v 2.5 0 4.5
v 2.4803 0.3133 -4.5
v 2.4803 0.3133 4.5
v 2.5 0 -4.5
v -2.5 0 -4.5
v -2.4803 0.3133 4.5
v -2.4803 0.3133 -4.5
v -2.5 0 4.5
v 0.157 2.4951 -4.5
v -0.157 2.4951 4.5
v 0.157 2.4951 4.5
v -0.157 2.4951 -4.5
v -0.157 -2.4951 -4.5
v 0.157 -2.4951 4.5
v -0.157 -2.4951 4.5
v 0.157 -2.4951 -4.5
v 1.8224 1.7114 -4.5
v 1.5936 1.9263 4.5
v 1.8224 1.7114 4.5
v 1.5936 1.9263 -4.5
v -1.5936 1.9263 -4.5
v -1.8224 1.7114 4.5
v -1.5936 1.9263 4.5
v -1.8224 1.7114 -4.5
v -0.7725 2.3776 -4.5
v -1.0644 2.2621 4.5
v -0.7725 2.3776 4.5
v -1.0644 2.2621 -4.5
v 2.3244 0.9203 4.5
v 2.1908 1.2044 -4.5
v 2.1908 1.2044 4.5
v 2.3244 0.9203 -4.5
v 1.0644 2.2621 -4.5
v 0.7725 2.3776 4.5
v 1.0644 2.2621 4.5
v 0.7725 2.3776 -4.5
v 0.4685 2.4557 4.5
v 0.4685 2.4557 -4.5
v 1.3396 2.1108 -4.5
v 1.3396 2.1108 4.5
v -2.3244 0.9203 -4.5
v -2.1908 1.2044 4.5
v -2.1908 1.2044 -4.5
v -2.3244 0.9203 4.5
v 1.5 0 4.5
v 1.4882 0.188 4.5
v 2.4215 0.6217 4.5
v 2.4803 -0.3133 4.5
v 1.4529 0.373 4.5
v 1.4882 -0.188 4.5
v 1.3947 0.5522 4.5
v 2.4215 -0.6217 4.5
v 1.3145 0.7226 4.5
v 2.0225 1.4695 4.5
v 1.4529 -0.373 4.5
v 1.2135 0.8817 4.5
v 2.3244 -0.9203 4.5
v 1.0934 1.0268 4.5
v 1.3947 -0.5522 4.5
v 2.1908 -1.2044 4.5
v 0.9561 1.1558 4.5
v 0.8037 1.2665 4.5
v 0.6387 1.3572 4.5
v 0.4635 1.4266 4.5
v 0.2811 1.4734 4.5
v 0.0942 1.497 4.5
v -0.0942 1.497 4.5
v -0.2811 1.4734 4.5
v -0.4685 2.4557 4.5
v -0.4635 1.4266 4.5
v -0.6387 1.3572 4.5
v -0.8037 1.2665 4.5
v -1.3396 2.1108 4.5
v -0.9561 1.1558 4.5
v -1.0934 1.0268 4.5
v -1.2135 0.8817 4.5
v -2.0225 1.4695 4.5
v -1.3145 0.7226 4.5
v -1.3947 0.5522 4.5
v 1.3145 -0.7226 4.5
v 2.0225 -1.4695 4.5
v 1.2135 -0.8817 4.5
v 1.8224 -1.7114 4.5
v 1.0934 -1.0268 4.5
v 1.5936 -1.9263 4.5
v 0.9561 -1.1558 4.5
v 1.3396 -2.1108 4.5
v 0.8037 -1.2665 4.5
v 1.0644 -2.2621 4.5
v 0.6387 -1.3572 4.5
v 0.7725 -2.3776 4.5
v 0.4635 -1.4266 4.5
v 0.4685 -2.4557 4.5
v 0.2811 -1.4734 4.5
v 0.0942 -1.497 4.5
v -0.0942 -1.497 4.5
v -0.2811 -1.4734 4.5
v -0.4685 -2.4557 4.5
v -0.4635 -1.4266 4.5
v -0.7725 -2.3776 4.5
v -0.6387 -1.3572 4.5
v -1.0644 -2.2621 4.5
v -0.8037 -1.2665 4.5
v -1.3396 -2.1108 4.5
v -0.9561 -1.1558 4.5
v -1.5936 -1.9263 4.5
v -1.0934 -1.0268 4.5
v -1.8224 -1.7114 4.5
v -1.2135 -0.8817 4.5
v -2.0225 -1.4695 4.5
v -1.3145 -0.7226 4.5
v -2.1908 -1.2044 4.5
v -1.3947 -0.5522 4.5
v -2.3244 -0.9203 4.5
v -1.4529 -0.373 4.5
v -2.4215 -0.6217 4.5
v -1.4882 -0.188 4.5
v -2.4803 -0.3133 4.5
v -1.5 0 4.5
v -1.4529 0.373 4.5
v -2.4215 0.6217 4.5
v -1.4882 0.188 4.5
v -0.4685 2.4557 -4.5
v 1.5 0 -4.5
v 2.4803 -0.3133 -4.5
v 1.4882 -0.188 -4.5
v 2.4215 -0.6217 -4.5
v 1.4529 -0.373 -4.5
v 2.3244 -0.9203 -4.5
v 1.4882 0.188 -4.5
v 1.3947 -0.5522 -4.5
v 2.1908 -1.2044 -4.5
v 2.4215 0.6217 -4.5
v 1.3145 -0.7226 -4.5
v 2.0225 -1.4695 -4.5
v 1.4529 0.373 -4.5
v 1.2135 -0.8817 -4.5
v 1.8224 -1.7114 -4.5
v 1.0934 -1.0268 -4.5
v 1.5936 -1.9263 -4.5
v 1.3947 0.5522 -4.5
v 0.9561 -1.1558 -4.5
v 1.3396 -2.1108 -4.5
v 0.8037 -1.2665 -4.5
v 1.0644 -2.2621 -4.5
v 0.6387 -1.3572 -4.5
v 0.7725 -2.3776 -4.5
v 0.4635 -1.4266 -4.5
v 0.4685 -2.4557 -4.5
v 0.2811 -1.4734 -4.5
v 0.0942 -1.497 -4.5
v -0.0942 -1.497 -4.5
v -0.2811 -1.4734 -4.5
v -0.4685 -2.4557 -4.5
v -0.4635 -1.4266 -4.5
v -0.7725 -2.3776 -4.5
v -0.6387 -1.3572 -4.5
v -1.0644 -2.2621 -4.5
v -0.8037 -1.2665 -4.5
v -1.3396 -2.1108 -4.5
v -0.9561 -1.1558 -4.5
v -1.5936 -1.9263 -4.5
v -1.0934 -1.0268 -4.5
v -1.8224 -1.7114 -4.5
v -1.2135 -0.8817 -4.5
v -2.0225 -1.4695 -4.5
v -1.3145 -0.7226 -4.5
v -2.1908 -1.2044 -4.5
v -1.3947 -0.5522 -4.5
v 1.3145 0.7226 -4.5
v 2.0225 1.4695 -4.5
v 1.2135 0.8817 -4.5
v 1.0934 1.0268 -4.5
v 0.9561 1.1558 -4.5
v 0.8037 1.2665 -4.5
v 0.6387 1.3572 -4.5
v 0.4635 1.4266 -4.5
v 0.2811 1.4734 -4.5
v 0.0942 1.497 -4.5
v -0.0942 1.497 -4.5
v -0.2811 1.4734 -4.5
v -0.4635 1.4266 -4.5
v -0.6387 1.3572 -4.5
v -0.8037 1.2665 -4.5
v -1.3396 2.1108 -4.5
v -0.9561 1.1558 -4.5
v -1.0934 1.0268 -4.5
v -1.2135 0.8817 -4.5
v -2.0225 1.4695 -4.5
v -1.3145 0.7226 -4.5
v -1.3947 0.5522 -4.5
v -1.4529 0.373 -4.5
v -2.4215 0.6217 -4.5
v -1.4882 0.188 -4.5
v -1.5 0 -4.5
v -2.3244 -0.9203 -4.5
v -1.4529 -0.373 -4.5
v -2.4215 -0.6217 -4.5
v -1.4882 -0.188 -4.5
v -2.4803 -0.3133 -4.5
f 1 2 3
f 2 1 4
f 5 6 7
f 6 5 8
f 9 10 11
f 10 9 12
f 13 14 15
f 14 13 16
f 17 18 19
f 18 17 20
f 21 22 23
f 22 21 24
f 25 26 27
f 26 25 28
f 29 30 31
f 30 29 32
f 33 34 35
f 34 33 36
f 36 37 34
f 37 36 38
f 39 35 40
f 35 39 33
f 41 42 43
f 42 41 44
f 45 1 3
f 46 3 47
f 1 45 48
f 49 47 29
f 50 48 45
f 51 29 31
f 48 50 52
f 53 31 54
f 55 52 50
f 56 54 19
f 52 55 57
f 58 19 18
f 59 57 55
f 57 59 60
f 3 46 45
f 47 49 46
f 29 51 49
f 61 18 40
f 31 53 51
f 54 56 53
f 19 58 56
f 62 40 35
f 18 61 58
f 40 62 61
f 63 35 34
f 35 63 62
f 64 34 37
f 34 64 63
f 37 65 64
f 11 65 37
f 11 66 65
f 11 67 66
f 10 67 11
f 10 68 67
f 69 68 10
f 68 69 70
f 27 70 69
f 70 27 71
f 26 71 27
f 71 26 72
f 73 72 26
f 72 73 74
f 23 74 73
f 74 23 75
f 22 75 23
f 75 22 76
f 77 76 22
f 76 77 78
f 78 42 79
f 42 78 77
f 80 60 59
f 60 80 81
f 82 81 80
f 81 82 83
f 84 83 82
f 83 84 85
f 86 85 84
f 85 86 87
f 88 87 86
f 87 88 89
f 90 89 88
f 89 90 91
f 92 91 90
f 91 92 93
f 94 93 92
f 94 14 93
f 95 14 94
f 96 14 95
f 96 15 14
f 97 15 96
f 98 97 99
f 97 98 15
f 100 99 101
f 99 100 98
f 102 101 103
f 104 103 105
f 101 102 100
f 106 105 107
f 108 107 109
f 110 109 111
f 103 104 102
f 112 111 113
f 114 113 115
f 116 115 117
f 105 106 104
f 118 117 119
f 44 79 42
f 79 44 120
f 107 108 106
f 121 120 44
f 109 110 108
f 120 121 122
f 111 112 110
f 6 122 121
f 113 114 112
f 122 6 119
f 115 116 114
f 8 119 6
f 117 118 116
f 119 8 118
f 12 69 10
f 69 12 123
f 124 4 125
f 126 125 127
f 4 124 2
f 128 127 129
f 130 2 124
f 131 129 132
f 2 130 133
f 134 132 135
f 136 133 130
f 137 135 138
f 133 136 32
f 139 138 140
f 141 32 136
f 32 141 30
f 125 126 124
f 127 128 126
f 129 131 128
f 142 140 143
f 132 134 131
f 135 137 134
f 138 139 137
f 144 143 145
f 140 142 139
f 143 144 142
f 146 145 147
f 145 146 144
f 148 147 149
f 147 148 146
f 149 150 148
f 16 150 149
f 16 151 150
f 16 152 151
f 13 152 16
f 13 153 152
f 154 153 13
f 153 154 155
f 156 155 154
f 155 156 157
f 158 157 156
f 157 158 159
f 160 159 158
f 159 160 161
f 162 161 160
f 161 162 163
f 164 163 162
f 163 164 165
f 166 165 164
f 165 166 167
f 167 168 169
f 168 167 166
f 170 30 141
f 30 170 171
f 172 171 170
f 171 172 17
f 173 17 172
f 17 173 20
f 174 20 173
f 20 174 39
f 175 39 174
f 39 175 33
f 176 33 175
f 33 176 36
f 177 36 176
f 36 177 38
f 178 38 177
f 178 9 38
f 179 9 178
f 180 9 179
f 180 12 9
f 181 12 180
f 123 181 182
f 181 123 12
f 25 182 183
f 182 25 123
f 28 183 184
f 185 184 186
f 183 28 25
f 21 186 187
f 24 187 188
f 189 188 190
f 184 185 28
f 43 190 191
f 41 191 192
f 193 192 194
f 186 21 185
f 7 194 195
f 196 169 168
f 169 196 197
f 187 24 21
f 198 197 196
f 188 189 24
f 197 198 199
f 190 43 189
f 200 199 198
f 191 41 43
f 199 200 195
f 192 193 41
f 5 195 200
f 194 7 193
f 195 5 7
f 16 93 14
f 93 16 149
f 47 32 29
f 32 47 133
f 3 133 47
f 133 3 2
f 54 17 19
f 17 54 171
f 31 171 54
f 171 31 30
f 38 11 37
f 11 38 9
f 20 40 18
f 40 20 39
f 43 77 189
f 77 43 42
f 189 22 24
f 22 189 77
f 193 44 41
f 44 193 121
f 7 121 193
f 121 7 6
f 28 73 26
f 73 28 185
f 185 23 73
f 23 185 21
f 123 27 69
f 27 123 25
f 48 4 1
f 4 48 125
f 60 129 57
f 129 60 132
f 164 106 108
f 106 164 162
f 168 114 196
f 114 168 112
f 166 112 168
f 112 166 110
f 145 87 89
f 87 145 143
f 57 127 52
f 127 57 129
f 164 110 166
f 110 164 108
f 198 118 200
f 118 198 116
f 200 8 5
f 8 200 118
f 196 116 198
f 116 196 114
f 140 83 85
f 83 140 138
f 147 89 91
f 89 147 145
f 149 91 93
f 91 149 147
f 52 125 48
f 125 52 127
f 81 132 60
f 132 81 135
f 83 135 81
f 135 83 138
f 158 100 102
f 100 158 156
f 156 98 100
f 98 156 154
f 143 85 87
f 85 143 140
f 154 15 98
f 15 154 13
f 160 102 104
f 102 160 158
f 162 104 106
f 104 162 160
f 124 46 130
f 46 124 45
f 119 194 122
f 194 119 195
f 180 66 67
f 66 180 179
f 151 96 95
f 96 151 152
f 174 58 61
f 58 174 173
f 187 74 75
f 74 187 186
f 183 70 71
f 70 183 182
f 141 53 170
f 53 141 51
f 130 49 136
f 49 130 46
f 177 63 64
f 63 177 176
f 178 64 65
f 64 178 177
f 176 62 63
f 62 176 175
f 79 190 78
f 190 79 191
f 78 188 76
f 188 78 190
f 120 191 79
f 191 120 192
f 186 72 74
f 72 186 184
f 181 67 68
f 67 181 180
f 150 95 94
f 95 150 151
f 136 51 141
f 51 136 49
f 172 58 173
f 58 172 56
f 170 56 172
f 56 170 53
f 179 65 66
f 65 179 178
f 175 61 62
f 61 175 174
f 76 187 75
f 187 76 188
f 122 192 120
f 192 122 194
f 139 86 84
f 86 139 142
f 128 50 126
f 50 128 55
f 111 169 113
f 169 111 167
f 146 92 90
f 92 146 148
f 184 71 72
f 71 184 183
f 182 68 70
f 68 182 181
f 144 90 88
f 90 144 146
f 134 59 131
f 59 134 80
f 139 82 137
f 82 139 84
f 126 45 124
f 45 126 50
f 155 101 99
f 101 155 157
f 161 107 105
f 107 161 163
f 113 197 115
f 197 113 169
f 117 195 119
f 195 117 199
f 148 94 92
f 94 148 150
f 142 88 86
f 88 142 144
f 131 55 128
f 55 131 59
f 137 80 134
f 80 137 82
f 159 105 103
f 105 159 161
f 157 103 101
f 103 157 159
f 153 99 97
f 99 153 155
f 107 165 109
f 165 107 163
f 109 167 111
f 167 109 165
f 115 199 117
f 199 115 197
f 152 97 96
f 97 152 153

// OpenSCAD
$fn = 50;


difference() {
	union() {
		translate(v = [0, 0, -4.5000000000]) {
			cylinder(h = 9, r = 2.5000000000);
		}
	}
	union() {
		translate(v = [0, 0, -100.0000000000]) {
			cylinder(h = 200, r = 1.5000000000);
		}
	}
}
